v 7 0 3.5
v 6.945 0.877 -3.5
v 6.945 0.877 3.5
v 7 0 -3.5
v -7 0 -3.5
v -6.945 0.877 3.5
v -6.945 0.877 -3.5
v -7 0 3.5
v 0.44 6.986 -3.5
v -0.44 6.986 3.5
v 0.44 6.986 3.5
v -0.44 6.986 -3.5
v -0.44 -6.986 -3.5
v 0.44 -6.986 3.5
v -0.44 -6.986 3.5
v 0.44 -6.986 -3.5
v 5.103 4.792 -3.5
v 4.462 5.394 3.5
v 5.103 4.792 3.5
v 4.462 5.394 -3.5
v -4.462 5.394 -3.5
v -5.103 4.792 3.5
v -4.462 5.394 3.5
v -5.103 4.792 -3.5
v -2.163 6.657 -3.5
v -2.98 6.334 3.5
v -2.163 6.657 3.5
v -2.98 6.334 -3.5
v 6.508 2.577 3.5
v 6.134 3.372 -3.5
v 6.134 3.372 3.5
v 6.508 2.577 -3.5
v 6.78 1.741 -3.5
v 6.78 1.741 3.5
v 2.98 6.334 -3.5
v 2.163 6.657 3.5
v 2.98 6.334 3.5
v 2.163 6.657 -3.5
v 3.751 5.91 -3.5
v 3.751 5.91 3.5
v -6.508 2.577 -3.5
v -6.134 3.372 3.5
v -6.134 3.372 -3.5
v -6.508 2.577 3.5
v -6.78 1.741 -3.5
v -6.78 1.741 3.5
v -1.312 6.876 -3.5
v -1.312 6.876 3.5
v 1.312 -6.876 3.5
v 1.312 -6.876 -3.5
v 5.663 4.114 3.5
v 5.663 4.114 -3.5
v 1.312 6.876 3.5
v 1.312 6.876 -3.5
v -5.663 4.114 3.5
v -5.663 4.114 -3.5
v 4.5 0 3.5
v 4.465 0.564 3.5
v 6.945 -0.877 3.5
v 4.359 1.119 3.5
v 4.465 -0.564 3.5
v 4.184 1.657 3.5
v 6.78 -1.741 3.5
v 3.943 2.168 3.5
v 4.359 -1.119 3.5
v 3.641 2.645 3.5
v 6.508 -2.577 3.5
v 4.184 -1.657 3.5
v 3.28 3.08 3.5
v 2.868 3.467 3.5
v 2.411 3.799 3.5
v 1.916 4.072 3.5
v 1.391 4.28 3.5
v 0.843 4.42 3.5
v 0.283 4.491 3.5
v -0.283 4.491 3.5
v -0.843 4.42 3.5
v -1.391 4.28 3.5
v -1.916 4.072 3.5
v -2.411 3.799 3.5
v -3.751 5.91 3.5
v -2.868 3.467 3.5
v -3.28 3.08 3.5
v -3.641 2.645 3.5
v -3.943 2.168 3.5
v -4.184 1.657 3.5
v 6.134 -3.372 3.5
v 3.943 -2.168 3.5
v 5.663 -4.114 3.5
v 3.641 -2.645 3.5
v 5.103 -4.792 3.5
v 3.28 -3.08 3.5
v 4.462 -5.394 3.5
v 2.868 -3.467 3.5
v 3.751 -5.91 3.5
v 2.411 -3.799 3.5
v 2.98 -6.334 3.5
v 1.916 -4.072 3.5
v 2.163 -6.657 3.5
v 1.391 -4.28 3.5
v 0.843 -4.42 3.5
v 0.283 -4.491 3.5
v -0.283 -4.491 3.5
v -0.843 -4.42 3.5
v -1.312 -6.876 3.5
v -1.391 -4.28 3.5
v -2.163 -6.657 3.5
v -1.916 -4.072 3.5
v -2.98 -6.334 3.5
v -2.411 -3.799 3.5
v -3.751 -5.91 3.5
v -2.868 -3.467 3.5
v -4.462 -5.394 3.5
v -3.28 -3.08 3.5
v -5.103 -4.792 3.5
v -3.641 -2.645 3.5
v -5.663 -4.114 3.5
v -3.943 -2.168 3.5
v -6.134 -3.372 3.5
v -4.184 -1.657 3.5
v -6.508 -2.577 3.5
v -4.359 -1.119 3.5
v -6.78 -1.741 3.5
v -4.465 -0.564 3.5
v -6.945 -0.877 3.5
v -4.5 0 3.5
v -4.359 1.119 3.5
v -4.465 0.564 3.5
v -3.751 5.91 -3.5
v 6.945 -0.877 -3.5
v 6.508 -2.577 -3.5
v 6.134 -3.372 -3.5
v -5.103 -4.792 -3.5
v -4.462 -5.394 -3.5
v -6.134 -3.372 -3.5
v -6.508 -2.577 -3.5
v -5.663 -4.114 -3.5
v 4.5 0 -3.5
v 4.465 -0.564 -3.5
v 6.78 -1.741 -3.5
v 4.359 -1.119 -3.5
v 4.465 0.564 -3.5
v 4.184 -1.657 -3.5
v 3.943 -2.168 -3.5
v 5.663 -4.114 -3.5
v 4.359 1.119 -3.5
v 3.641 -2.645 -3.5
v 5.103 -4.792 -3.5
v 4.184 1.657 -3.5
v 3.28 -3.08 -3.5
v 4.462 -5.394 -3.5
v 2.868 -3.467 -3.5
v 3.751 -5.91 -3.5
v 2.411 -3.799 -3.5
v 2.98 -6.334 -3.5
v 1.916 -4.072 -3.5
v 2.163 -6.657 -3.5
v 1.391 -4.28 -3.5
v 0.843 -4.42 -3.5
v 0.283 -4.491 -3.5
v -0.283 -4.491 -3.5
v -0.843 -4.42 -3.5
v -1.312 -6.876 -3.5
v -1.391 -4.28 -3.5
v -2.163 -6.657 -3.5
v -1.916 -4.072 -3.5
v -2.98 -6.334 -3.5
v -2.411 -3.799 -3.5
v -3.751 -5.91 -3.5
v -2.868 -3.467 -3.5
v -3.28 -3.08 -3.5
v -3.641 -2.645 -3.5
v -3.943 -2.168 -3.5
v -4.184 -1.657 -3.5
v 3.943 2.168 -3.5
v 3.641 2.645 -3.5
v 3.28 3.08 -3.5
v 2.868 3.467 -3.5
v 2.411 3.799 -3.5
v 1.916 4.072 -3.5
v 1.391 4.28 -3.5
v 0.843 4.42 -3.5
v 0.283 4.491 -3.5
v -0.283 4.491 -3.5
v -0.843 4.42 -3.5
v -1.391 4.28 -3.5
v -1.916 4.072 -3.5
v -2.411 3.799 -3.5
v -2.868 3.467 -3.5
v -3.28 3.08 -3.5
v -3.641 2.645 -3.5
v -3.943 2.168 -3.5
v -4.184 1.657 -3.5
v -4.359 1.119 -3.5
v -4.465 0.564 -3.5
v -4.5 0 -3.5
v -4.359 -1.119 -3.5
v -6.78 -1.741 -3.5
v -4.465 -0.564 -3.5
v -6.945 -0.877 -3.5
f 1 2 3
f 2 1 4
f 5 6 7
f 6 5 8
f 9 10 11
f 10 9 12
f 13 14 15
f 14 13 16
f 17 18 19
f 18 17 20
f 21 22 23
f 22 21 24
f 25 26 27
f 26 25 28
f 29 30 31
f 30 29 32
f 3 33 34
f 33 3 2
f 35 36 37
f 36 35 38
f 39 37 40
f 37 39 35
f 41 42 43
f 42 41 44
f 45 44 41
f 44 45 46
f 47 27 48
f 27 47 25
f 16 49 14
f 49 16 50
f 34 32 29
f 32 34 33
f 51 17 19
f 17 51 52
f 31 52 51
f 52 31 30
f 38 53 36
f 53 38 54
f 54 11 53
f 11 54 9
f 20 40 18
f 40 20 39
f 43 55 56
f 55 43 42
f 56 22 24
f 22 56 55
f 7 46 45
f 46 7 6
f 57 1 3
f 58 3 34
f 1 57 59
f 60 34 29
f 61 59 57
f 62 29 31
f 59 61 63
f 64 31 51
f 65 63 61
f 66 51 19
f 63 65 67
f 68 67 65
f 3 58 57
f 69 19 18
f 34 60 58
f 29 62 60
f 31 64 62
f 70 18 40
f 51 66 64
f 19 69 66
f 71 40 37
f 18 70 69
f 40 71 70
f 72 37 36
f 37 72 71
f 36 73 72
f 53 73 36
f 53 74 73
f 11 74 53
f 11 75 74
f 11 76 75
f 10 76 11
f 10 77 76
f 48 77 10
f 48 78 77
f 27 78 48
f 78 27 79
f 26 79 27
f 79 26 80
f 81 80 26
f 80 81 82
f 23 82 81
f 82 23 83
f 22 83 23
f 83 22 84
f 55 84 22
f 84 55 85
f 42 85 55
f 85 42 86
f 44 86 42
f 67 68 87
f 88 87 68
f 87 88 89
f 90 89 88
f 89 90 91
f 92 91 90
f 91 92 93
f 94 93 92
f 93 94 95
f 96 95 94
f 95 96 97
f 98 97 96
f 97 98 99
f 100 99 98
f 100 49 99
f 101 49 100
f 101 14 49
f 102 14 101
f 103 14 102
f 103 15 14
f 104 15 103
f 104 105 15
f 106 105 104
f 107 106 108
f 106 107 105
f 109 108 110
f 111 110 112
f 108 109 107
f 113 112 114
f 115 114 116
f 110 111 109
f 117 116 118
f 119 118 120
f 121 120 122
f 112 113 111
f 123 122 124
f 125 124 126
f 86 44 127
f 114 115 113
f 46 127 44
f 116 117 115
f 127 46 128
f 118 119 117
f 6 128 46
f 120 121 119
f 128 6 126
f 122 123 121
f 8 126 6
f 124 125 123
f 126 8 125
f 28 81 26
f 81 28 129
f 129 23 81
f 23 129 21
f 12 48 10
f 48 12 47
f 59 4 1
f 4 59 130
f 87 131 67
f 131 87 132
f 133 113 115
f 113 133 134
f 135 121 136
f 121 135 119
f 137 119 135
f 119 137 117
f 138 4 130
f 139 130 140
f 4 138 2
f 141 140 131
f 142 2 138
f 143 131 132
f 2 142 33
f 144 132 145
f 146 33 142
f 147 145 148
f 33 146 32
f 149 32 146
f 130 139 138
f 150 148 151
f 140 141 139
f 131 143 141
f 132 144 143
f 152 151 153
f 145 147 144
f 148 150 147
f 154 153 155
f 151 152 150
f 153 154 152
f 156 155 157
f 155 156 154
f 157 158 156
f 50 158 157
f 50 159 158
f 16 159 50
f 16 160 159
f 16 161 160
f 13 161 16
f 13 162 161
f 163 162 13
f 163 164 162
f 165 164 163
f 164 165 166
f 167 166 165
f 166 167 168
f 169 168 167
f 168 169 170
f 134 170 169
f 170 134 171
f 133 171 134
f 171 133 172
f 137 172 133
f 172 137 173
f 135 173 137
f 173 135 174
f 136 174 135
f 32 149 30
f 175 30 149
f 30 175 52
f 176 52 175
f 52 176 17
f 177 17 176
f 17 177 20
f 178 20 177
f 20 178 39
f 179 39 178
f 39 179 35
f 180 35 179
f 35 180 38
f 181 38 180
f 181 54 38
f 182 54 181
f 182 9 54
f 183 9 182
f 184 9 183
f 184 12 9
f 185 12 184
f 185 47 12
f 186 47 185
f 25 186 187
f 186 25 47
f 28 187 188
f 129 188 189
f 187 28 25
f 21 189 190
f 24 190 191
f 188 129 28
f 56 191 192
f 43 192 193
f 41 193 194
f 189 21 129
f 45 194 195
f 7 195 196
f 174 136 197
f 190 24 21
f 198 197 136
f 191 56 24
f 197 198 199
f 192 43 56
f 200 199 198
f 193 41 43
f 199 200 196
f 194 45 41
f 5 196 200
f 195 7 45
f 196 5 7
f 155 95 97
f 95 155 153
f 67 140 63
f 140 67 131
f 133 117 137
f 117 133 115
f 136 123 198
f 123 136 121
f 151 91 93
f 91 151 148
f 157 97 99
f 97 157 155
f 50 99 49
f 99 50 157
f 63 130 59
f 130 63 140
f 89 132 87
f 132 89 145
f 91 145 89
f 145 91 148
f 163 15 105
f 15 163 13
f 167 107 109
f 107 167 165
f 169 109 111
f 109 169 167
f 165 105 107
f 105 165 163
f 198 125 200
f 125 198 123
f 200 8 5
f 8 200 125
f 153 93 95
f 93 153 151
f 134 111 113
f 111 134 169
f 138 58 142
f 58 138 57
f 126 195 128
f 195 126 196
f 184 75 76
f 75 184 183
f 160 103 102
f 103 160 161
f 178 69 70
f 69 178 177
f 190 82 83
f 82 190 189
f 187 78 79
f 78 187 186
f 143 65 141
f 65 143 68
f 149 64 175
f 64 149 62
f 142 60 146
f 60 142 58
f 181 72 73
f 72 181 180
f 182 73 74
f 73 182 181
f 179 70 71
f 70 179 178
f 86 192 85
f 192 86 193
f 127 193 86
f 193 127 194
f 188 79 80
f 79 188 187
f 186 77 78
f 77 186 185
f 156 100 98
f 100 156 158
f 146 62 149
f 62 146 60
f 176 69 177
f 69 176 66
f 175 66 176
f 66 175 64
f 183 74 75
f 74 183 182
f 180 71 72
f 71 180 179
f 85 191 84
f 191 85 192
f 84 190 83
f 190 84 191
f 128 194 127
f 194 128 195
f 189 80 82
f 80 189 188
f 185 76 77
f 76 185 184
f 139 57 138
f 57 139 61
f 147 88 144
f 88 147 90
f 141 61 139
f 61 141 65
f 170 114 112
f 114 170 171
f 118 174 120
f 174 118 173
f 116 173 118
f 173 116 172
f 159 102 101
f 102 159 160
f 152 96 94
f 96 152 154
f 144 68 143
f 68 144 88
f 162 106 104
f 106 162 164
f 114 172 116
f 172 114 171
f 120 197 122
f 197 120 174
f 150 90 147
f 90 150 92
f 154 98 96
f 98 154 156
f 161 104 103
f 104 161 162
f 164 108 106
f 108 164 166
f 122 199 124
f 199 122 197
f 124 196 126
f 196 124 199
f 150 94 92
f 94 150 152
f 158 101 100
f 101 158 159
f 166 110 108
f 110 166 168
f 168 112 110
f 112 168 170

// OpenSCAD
$fn = 50;


difference() {
	union() {
		translate(v = [0, 0, -3.5000000000]) {
			cylinder(h = 7, r = 7.0000000000);
		}
	}
	union() {
		translate(v = [0, 0, -100.0000000000]) {
			cylinder(h = 200, r = 4.5000000000);
		}
	}
}
